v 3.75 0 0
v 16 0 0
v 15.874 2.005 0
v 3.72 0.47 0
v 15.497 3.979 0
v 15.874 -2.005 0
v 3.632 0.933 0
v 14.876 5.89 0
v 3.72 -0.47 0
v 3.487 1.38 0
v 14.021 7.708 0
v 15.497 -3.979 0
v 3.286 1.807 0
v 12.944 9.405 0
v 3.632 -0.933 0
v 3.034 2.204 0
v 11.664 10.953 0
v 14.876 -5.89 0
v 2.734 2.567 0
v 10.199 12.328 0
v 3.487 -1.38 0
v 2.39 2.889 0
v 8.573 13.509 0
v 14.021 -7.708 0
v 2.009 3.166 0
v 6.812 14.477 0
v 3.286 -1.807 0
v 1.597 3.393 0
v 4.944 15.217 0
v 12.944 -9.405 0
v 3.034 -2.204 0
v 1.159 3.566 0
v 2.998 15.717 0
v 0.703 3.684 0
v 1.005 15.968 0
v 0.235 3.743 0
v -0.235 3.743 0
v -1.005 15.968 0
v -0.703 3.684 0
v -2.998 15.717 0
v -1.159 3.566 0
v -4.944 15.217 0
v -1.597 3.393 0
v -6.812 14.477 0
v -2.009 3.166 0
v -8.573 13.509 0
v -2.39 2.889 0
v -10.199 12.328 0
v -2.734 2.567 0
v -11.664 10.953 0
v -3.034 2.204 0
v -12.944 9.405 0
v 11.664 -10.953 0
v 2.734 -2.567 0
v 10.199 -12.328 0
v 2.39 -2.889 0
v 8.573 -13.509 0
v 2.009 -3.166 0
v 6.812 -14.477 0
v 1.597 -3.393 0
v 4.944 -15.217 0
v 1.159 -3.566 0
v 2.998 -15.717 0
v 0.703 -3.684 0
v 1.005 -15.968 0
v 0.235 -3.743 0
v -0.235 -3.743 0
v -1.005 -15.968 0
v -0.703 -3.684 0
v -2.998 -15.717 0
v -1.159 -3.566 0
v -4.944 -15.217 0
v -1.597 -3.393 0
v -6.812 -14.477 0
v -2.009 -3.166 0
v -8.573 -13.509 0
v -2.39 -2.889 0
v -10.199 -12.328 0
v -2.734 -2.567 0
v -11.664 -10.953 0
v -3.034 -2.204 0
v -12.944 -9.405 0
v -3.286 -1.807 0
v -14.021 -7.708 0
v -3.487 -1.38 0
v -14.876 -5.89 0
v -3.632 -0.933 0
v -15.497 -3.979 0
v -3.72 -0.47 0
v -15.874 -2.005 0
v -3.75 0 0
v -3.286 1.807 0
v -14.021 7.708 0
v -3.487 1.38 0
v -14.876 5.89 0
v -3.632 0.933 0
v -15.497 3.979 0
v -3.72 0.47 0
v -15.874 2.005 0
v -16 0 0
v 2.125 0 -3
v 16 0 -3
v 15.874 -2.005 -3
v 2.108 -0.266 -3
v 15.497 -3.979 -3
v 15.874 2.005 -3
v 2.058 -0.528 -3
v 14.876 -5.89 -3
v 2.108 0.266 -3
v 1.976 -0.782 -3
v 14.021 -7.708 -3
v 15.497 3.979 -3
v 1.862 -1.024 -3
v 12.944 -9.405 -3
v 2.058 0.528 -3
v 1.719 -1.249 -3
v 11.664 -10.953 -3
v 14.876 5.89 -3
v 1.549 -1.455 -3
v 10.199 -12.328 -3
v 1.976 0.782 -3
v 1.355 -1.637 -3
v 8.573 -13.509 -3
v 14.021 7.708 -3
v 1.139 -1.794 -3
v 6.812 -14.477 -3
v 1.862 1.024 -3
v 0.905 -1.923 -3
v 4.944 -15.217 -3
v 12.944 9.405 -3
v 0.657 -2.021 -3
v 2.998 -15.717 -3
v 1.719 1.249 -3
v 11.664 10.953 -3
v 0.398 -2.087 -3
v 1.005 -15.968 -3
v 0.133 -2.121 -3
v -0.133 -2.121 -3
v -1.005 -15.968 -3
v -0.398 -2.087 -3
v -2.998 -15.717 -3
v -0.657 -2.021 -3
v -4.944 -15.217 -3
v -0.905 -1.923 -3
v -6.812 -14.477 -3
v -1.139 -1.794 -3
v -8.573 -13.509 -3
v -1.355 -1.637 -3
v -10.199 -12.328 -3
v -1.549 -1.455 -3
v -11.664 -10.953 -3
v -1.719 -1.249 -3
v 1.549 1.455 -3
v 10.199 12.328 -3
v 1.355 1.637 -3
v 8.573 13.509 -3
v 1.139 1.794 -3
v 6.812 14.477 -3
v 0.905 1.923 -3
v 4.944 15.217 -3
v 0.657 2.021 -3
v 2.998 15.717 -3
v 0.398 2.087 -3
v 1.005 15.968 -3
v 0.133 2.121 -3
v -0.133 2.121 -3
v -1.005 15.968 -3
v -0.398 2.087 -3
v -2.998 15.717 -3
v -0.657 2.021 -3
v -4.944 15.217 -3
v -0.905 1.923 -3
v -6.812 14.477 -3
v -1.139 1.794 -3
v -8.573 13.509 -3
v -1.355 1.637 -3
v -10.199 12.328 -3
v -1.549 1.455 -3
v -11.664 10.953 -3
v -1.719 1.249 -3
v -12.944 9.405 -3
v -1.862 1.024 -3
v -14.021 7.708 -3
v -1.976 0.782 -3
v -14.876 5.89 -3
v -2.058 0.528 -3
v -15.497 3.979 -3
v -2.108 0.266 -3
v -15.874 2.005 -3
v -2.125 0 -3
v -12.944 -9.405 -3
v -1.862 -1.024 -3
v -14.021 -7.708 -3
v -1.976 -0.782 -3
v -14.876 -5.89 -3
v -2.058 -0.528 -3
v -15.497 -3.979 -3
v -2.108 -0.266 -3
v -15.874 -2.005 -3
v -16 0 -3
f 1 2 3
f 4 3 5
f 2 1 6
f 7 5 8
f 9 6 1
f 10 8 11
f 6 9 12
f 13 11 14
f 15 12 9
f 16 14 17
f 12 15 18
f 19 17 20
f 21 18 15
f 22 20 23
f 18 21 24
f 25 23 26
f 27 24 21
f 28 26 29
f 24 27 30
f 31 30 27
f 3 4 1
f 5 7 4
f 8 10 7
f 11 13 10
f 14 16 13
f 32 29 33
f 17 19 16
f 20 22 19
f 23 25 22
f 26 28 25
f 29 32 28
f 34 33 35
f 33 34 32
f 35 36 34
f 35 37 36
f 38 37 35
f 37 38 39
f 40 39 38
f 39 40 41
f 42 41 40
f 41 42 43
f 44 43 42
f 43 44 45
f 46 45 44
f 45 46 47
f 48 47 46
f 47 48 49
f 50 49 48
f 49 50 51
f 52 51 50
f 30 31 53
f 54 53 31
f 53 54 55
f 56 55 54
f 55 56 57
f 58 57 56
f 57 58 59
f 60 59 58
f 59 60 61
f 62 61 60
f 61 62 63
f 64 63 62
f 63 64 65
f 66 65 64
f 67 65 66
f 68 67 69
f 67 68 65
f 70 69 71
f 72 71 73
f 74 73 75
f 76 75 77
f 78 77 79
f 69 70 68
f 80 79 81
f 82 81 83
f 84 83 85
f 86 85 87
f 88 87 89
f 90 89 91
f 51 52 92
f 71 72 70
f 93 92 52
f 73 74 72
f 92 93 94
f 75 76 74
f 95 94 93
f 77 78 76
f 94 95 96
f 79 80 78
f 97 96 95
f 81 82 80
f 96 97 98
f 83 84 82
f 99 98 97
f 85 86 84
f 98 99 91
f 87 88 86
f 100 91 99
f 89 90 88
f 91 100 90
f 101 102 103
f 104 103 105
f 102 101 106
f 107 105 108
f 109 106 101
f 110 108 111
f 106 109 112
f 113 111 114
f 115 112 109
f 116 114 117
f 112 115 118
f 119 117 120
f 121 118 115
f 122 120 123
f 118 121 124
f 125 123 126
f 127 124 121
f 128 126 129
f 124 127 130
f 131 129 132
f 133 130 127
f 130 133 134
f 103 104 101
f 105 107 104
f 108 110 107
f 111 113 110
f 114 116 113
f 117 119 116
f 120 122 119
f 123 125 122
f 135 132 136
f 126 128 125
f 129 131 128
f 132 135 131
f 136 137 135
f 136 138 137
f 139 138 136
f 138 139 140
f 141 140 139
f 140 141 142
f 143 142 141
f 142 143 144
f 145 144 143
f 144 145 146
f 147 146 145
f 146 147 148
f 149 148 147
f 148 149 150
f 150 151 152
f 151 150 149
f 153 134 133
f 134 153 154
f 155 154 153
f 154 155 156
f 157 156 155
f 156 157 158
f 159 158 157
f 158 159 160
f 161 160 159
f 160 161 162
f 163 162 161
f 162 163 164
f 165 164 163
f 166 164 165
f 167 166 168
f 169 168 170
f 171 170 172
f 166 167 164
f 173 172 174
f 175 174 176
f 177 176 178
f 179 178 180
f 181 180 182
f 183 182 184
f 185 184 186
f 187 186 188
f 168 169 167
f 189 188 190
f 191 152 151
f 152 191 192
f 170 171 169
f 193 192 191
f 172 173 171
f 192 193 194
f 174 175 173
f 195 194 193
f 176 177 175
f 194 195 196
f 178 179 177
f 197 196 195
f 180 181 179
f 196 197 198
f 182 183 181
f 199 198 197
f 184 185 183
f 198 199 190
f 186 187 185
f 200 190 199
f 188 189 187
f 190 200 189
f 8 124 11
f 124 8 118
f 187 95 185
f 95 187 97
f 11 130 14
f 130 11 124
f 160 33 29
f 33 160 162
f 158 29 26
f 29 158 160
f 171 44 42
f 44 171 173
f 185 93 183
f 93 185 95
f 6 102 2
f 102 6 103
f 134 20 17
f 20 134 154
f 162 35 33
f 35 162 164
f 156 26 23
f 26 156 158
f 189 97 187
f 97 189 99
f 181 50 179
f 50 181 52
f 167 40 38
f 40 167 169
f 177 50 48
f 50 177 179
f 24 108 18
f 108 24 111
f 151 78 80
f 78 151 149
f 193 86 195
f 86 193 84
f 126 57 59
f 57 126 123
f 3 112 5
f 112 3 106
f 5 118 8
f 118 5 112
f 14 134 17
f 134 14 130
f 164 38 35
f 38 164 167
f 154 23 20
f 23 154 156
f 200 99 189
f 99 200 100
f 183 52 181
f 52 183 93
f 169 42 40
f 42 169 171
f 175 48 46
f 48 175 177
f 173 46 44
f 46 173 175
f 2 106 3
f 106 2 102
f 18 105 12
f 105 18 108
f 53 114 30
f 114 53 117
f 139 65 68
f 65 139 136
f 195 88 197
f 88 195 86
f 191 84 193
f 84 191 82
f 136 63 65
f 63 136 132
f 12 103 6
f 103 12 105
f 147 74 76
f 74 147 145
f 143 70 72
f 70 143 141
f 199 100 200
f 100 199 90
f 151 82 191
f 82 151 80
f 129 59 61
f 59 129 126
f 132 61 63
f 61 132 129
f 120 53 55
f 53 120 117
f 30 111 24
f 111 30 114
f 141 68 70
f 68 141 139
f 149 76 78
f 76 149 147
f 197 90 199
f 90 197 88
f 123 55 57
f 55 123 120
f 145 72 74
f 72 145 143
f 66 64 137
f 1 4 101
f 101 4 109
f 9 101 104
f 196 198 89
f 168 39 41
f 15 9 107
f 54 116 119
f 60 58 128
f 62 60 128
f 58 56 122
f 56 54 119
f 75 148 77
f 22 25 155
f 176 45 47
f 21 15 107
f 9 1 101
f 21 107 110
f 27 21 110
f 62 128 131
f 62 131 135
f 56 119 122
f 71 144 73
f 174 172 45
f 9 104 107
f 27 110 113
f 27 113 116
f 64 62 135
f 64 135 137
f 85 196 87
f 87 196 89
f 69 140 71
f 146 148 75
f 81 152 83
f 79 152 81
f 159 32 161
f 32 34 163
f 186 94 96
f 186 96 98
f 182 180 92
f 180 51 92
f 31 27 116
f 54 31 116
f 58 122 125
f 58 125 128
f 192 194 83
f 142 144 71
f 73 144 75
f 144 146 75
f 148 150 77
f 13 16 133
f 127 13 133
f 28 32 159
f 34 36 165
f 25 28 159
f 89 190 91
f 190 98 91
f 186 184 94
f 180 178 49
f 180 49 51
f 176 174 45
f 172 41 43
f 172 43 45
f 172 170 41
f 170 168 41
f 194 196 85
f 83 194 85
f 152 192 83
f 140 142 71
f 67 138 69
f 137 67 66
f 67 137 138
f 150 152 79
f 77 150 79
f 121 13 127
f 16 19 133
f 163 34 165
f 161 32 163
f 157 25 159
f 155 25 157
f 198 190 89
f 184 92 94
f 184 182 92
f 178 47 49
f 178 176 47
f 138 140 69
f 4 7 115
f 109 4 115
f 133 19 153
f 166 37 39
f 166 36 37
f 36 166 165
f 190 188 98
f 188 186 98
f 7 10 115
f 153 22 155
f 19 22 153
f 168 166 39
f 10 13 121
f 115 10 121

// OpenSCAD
$fn = 50;


difference() {
	union() {
		translate(v = [0, 0, -3.0000000000]) {
			cylinder(h = 3, r = 10.0000000000);
		}
		translate(v = [0, 0, -3.0000000000]) {
			cylinder(h = 3, r = 16.0000000000);
		}
	}
	union() {
		translate(v = [0, 0, 0]) {
			rotate(a = [0, 0, 0]) {
				difference() {
					union() {
						#translate(v = [0, 0, -3.0000000000]) {
							cylinder(h = 3, r = 2.0000000000);
						}
						#translate(v = [0, 0, -3]) {
							cylinder(h = 3, r1 = 2.1250000000, r2 = 3.7500000000);
						}
						#translate(v = [0, 0, -3.0000000000]) {
							cylinder(h = 3, r = 2.1250000000);
						}
						#translate(v = [0, 0, -3.0000000000]) {
							cylinder(h = 3, r = 2.0000000000);
						}
					}
					union();
				}
			}
		}
	}
}
